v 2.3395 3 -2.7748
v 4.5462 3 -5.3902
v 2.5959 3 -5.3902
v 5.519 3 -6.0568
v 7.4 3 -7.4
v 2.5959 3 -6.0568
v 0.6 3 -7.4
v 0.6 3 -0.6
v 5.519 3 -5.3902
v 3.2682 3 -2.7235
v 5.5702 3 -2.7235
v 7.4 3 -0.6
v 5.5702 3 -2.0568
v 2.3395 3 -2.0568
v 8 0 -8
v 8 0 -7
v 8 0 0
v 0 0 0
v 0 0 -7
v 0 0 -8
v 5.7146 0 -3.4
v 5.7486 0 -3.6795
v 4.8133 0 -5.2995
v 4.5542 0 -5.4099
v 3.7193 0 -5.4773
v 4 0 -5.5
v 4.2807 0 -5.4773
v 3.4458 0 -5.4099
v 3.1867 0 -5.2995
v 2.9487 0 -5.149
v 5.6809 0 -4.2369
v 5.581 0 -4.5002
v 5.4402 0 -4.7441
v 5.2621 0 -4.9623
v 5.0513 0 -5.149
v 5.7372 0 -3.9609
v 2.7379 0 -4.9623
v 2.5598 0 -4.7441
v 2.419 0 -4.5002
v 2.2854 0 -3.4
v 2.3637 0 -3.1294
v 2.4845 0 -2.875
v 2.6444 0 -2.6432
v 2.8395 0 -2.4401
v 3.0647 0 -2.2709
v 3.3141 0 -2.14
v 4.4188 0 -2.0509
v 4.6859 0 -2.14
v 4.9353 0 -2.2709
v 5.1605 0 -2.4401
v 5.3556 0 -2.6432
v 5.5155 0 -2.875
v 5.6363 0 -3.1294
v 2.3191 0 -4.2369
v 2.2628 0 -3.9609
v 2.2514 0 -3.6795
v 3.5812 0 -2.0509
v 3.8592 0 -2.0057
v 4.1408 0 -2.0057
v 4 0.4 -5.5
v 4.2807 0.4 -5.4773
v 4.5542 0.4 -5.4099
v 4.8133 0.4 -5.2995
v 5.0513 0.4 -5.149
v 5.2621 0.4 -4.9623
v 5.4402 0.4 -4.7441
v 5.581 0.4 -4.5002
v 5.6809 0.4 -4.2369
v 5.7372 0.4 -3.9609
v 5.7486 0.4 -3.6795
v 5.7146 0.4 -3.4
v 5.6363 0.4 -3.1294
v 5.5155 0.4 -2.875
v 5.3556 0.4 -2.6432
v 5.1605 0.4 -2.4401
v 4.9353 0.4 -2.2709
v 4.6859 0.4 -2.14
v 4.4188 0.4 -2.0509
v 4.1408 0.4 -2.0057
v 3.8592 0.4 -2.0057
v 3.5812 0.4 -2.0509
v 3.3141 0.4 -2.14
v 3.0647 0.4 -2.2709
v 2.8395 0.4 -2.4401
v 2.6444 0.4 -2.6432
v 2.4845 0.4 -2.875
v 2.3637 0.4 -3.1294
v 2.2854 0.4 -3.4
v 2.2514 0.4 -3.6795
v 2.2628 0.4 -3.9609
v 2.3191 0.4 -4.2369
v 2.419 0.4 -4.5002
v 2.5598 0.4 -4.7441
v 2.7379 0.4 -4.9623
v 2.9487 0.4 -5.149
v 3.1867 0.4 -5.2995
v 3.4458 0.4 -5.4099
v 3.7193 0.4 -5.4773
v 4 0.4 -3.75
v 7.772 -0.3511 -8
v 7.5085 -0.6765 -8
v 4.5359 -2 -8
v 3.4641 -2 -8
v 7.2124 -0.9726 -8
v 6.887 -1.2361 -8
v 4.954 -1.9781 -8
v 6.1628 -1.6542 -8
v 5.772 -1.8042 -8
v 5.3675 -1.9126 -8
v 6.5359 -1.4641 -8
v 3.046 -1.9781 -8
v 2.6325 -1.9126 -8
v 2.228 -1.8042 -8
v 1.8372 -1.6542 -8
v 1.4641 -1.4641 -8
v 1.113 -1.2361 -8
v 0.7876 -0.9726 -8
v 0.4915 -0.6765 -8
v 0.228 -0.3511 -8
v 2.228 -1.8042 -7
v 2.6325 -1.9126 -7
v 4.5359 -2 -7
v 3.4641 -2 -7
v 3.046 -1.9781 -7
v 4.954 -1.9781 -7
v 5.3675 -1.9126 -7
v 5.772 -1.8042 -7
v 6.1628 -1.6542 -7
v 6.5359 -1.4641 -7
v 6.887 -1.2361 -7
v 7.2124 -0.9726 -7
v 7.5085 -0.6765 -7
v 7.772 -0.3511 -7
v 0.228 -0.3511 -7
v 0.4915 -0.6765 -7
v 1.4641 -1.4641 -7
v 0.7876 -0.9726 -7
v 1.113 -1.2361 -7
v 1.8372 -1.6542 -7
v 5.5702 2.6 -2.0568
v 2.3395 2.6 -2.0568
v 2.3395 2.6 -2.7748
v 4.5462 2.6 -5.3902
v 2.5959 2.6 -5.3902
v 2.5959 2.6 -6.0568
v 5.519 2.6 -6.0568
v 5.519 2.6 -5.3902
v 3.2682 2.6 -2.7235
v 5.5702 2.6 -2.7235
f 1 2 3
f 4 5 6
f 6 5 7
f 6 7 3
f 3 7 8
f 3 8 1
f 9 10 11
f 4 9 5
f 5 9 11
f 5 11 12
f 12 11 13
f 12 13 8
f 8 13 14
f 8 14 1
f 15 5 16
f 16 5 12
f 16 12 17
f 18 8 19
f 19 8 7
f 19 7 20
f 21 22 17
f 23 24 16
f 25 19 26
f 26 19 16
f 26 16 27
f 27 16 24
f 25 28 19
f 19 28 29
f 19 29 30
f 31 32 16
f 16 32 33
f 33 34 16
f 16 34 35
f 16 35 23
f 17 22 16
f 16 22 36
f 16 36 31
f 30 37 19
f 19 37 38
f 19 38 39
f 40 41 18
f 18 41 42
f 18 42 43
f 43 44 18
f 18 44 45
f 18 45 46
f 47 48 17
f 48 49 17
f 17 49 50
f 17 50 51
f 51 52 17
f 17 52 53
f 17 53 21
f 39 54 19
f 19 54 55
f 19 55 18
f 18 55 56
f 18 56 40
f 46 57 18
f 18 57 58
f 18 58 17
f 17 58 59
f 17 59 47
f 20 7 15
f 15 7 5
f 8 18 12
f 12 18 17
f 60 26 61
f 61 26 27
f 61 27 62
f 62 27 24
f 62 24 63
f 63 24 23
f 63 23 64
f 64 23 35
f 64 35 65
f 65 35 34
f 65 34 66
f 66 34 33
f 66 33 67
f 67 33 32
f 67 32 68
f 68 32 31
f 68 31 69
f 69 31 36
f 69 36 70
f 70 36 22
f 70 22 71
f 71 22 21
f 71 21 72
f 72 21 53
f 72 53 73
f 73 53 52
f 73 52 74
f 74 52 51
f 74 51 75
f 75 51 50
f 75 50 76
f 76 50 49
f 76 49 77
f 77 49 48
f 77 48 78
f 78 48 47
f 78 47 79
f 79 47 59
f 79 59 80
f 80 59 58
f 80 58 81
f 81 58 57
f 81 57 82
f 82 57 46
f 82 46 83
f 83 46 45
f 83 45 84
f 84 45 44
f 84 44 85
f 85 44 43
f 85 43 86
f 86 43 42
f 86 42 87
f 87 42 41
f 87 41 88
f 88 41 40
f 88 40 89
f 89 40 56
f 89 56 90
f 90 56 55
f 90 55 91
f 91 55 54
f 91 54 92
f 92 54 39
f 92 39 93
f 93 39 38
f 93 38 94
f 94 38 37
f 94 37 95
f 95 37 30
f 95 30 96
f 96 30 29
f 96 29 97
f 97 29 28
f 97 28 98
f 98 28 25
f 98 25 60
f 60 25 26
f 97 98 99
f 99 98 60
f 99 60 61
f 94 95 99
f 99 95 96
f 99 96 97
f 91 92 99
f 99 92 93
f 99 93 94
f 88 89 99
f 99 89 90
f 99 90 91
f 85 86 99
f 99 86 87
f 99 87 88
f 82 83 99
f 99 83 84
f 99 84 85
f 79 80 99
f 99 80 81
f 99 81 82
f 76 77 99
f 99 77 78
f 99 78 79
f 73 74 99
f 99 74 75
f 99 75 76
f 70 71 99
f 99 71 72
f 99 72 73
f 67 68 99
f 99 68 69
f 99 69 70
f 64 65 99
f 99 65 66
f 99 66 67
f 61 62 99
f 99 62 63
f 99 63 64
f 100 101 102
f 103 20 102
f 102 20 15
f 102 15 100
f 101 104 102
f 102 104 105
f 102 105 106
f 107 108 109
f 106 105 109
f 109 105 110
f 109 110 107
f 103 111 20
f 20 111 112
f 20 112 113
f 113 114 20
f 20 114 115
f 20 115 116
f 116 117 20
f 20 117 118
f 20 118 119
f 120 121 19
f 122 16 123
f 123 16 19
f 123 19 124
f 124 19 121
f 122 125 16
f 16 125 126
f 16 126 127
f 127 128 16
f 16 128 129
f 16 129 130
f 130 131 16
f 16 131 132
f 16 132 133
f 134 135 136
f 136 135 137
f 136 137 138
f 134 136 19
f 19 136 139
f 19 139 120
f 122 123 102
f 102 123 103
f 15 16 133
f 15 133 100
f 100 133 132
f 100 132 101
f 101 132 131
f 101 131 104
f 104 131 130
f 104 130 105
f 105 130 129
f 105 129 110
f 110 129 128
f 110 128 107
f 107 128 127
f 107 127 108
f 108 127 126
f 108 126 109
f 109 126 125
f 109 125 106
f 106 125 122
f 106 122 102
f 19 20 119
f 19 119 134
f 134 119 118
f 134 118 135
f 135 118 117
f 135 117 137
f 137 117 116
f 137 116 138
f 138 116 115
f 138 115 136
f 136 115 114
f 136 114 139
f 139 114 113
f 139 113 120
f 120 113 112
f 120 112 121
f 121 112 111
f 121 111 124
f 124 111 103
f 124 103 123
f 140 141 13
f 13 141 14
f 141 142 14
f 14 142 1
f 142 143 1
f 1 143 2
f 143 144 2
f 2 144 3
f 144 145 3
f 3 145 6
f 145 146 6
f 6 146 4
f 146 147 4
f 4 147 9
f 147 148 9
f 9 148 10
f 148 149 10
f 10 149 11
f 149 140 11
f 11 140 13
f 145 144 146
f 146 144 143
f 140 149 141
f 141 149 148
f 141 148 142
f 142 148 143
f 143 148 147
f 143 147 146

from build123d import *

# Parameters (mm, degrees)
SKETCH1_W               = 8
SKETCH1_H               = 8
BOSS_EXTRUDE1_DEPTH     = 3
CUT_EXTRUDE1_DEPTH      = 12.704699911
CUT_EXTRUDE1_DEPTH_BACK = 12.704699911
CUT_EXTRUDE2_DEPTH      = 11
SKETCH4_R               = 1.75
CUT_EXTRUDE3_DEPTH      = 0.4
SKETCH5_W               = 8
SKETCH5_H               = 1
BOSS_EXTRUDE2_DEPTH     = 2
FILLET1_R               = 4
CUT_EXTRUDE4_DEPTH      = 0.4


with BuildPart() as part:
    # Sketch1 → Boss-Extrude1 (new body)
    with BuildSketch(Plane(origin=(0, 0, 0), x_dir=(1, 0, 0), z_dir=(0, 1, 0))):
        with Locations((4, 4)):
            Rectangle(SKETCH1_W, SKETCH1_H)
    extrude(amount=BOSS_EXTRUDE1_DEPTH)

    # Sketch2 → Cut-Extrude1 (cut, two sides: drawn at the far end of the back side and taken through both)
    with BuildSketch(Plane.XY.offset(-CUT_EXTRUDE1_DEPTH_BACK)):
        Polygon((0, 0), (0.6, 3), (0, 3), align=None)
        Polygon((8, 0), (7.4, 3), (8, 3), align=None)
    extrude(amount=CUT_EXTRUDE1_DEPTH + CUT_EXTRUDE1_DEPTH_BACK, mode=Mode.SUBTRACT)

    # Sketch3 → Cut-Extrude2 (cut)
    with BuildSketch(Plane(origin=(0, 0, 0), x_dir=(0, 0, -1), z_dir=(1, 0, 0))):
        Polygon((0, 0), (0.6, 3), (0, 3), align=None)
        Polygon((8, 3), (7.4, 3), (8, 0), align=None)
    extrude(amount=CUT_EXTRUDE2_DEPTH, mode=Mode.SUBTRACT)

    # Sketch4 → Cut-Extrude3 (cut)
    with BuildSketch(Plane.XZ):
        with Locations(Location((4, -3.75, 0), (0, 0, 270))):
            Circle(SKETCH4_R)
    extrude(amount=-CUT_EXTRUDE3_DEPTH, mode=Mode.SUBTRACT)

    # Sketch5 → Boss-Extrude2 (add)
    with BuildSketch(Plane.XZ):
        with Locations((4, -7.5)):
            Rectangle(SKETCH5_W, SKETCH5_H)
    extrude(amount=BOSS_EXTRUDE2_DEPTH)

    # Fillet1
    # the kernel refuses this fillet: 4 mm, written as the material it takes off along each edge
    with BuildSketch(Plane(origin=(8, -2, -16.660254038), x_dir=(0, 1, 0), z_dir=(0, 0, 1)), Plane(origin=(0, -2, 1.660254038), x_dir=(0, 1, 0), z_dir=(0, 0, -1))) as fillet1_piece_1:
        with BuildLine():
            CenterArc((4, 3.464101615), FILLET1_R, 180, 60)
            Line((0, 3.464101615), (-0.08, 3.464101615))
            Line((-0.08, 3.464101615), (-0.08, 0))
            Line((-0.08, 0), (0, -0.08))
            ThreePointArc((0, -0.08), (1, -0.08), (1.96, -0.069282032))
            Line((1.96, -0.069282032), (2, 0))
        make_face()
    extrude(amount=18.320508076, mode=Mode.SUBTRACT)

    # Sketch6 → Cut-Extrude4 (cut)
    with BuildSketch(Plane(origin=(0, 3, 0), x_dir=(1, 0, 0), z_dir=(0, 1, 0))):
        Polygon((2.33946821, 2.056832464), (2.33946821, 2.774781182), (4.546198979, 5.390165797), (2.595878466, 5.390165797), (2.595878466, 6.056832464), (5.518955389, 6.056832464), (5.518955389, 5.390165797), (3.268154107, 2.72349913), (5.570237441, 2.72349913), (5.570237441, 2.056832464), align=None)
    extrude(amount=-CUT_EXTRUDE4_DEPTH, mode=Mode.SUBTRACT)


solid = part.part
